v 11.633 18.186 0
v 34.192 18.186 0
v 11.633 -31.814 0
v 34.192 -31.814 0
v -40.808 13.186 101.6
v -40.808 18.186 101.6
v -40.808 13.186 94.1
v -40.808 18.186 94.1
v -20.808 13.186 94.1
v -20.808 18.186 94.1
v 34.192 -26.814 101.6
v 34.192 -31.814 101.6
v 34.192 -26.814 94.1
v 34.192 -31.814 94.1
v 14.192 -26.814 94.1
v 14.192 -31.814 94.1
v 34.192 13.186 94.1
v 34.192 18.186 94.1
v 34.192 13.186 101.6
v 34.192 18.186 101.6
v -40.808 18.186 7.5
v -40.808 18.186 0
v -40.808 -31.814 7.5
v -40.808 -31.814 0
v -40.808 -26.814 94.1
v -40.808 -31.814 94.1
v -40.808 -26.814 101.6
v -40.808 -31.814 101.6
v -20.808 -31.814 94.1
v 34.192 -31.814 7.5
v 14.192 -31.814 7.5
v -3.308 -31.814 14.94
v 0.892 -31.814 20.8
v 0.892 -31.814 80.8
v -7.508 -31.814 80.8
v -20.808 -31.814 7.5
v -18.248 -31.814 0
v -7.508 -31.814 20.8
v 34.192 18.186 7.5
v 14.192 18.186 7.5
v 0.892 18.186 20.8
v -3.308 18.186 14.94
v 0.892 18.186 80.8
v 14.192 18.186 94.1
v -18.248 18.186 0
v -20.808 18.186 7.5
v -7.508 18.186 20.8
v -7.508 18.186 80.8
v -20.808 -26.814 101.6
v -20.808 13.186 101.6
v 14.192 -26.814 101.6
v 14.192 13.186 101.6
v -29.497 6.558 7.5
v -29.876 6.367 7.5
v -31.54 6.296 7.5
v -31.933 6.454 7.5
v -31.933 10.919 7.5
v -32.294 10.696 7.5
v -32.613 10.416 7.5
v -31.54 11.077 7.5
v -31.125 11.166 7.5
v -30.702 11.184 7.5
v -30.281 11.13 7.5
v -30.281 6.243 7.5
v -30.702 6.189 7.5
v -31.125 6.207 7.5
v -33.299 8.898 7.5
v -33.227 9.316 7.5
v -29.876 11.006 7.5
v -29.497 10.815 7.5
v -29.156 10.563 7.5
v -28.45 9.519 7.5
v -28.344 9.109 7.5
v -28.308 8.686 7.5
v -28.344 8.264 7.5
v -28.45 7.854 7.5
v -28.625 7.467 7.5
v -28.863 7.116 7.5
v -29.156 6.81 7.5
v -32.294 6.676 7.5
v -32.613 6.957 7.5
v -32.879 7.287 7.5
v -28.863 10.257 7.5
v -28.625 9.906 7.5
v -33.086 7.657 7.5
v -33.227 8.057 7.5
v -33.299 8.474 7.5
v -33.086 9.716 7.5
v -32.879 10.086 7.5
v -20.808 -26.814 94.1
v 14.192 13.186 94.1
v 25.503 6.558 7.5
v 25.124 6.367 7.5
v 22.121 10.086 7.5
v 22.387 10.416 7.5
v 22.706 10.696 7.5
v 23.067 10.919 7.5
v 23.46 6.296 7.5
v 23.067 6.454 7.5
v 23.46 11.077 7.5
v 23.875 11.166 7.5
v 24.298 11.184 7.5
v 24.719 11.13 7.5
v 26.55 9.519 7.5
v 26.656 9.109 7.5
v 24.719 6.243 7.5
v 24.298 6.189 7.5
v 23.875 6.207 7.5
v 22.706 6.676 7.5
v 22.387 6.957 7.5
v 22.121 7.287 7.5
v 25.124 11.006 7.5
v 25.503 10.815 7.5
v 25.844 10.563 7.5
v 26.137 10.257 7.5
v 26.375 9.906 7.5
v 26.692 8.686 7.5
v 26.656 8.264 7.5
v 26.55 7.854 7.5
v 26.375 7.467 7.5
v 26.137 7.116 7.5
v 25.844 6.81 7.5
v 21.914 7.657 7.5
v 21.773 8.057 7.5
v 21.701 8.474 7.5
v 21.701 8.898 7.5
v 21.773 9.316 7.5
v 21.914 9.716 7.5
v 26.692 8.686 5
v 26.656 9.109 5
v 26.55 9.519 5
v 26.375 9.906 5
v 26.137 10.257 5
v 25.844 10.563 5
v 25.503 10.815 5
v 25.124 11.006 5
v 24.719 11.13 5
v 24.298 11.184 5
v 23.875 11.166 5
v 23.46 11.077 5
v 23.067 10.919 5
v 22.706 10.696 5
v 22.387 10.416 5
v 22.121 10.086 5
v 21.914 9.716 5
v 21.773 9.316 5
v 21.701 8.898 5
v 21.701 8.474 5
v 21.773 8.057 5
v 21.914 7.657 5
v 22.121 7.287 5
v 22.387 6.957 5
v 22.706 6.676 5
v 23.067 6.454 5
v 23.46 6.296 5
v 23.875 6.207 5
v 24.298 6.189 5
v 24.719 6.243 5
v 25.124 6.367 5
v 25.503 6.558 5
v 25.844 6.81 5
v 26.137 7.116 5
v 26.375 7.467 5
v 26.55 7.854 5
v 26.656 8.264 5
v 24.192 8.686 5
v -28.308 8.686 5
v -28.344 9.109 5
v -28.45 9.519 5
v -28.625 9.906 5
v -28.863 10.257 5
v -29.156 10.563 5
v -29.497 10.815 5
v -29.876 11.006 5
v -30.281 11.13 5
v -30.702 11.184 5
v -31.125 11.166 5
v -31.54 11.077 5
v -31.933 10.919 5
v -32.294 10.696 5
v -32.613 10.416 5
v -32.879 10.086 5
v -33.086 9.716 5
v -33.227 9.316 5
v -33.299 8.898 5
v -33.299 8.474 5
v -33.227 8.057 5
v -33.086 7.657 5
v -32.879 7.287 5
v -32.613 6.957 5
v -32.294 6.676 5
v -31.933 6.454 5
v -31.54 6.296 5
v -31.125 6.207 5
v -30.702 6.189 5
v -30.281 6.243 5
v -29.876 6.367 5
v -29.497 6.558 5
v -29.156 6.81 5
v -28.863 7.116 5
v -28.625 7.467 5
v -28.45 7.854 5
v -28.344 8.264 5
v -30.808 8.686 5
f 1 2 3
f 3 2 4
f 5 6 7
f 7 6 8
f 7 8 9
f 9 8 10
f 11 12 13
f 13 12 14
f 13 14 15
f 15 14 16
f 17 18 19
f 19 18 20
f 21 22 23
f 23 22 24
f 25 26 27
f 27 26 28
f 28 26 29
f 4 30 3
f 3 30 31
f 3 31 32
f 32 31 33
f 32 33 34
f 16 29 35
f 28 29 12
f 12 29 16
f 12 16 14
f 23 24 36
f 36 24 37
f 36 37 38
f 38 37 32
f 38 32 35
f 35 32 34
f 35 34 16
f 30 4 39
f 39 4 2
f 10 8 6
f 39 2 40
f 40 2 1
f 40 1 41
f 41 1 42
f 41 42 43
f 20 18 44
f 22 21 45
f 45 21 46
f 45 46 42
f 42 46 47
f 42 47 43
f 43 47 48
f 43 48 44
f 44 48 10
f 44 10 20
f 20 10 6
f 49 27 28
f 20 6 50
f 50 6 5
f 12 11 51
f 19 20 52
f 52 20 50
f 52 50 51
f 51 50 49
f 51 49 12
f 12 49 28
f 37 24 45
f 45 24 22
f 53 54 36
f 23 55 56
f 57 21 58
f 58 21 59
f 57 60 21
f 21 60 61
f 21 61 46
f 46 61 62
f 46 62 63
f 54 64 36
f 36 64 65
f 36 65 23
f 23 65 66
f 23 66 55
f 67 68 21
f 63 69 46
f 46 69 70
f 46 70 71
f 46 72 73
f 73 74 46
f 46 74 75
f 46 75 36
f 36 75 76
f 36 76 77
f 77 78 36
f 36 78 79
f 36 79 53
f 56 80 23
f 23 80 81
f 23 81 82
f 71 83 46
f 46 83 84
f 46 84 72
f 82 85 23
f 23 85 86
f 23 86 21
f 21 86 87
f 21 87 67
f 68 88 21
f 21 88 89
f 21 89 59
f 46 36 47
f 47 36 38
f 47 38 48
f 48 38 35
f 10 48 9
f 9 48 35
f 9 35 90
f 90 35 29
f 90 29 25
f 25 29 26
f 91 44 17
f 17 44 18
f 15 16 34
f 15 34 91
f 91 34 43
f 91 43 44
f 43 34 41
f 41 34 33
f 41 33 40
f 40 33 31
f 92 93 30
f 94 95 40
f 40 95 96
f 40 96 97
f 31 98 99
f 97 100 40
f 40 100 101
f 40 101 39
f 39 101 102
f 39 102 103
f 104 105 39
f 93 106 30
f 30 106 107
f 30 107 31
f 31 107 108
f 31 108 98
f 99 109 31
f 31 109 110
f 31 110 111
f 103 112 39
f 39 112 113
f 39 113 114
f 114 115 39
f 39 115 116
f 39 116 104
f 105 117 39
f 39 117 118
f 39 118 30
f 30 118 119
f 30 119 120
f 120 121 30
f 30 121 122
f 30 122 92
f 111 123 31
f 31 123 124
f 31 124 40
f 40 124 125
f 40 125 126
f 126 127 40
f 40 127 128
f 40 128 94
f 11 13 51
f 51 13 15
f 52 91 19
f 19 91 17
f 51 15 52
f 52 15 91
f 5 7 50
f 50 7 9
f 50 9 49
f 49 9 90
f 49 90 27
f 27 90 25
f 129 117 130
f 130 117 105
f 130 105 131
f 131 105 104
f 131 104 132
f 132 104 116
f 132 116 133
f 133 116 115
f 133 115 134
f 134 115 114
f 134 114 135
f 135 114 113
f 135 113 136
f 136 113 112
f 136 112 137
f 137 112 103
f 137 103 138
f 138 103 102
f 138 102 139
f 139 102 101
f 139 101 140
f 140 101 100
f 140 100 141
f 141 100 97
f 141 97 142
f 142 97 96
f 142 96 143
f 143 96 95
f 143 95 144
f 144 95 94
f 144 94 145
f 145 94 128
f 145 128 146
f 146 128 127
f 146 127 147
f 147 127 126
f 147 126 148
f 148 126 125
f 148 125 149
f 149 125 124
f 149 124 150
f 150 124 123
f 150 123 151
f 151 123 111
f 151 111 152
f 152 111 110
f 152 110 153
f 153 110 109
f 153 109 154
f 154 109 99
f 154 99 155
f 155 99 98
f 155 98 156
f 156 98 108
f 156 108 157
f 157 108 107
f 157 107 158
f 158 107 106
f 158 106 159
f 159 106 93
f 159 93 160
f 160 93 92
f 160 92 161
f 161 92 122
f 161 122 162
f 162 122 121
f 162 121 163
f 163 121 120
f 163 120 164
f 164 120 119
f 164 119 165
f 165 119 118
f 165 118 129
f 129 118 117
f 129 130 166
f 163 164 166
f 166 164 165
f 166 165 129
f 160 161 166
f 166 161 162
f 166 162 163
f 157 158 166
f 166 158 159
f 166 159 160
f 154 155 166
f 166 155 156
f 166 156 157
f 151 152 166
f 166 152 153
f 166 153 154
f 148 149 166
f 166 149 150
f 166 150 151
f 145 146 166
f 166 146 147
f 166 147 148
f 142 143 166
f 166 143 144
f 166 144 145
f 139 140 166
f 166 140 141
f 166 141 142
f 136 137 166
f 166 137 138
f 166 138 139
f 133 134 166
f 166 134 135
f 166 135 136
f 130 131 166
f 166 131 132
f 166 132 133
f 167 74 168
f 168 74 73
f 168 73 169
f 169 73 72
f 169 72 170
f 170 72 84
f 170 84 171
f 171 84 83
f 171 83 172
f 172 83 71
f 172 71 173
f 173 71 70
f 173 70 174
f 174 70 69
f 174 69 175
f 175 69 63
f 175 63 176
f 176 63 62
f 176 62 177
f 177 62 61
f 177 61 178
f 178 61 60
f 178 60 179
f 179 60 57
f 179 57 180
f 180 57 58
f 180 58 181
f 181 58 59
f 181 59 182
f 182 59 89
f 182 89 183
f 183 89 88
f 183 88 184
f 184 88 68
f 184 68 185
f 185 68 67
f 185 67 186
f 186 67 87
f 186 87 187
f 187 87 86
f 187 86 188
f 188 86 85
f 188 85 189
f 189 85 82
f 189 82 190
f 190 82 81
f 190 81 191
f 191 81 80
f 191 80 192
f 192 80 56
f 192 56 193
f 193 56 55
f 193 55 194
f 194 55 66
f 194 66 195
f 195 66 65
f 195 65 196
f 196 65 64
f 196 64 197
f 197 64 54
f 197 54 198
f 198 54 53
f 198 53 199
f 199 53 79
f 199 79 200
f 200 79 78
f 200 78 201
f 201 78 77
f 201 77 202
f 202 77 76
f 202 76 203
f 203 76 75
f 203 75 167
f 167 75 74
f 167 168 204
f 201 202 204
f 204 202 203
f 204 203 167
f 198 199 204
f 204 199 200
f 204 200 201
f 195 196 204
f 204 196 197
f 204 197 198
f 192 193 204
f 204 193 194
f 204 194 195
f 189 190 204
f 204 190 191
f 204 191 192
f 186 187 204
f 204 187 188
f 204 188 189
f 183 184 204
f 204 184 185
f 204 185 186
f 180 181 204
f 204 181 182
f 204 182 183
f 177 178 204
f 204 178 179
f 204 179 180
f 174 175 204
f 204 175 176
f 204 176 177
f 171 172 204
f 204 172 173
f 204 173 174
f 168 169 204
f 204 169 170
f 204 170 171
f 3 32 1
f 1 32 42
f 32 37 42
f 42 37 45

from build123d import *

# Parameters (mm, degrees)
SKETCH2_W           = 75
SKETCH2_H           = 50
BOSS_EXTRUDE1_DEPTH = 101.6
CUT_EXTRUDE1_DEPTH  = 101.6
CUT_EXTRUDE2_DEPTH  = 101.6
SKETCH5_W           = 20
SKETCH5_H           = 40
CUT_EXTRUDE3_DEPTH  = 10
SKETCH6_W           = 20
SKETCH6_H           = 40
CUT_EXTRUDE4_DEPTH  = 10
SKETCH7_R           = 2.5
CUT_EXTRUDE5_DEPTH  = 2.5
SKETCH8_R           = 2.5
CUT_EXTRUDE6_DEPTH  = 2.5
CUT_EXTRUDE7_DEPTH  = 121.365392665


with BuildPart() as part:
    # Sketch2 → Boss-Extrude1 (new body)
    with BuildSketch(Plane.XY):
        with Locations((-3.307692308, -6.81353022)):
            Rectangle(SKETCH2_W, SKETCH2_H)
    extrude(amount=BOSS_EXTRUDE1_DEPTH)

    # Sketch3 → Cut-Extrude1 (cut)
    with BuildSketch(Plane(origin=(0, 18.18646978, 0), x_dir=(1, 0, 0), z_dir=(0, 1, 0))):
        Polygon((-40.807692308, -7.5), (-20.807692308, -7.5), (-7.507692308, -20.8), (-7.507692308, -80.8), (-20.807692308, -94.1), (-40.807692308, -94.1), align=None)
    extrude(amount=-CUT_EXTRUDE1_DEPTH, mode=Mode.SUBTRACT)

    # Sketch4 → Cut-Extrude2 (cut)
    with BuildSketch(Plane(origin=(0, 18.18646978, 0), x_dir=(1, 0, 0), z_dir=(0, 1, 0))):
        Polygon((34.192307692, -94.1), (14.192307692, -94.1), (0.892307692, -80.8), (0.892307692, -20.8), (14.192307692, -7.5), (34.192307692, -7.5), align=None)
    extrude(amount=-CUT_EXTRUDE2_DEPTH, mode=Mode.SUBTRACT)

    # Sketch5 → Cut-Extrude3 (cut)
    with BuildSketch(Plane.XY.offset(101.6)):
        with Locations((24.192307692, -6.81353022)):
            Rectangle(SKETCH5_W, SKETCH5_H)
    extrude(amount=-CUT_EXTRUDE3_DEPTH, mode=Mode.SUBTRACT)

    # Sketch6 → Cut-Extrude4 (cut)
    with BuildSketch(Plane.XY.offset(101.6)):
        with Locations((-30.807692308, -6.81353022)):
            Rectangle(SKETCH6_W, SKETCH6_H)
    extrude(amount=-CUT_EXTRUDE4_DEPTH, mode=Mode.SUBTRACT)

    # Sketch7 → Cut-Extrude5 (cut)
    with BuildSketch(Plane.XY.offset(7.5)):
        with Locations((24.192307692, 8.68646978)):
            Circle(SKETCH7_R)
    extrude(amount=-CUT_EXTRUDE5_DEPTH, mode=Mode.SUBTRACT)

    # Sketch8 → Cut-Extrude6 (cut)
    with BuildSketch(Plane.XY.offset(7.5)):
        with Locations((-30.807692308, 8.68646978)):
            Circle(SKETCH8_R)
    extrude(amount=-CUT_EXTRUDE6_DEPTH, mode=Mode.SUBTRACT)

    # Sketch9 → Cut-Extrude7 (cut, through all)
    with BuildSketch(Plane(origin=(0, 18.18646978, 0), x_dir=(1, 0, 0), z_dir=(0, 1, 0))):
        Polygon((-18.24818848, 0), (-3.307692308, -14.940496172), (11.632803865, 0), align=None)
    extrude(amount=-CUT_EXTRUDE7_DEPTH, mode=Mode.SUBTRACT)


solid = part.part
